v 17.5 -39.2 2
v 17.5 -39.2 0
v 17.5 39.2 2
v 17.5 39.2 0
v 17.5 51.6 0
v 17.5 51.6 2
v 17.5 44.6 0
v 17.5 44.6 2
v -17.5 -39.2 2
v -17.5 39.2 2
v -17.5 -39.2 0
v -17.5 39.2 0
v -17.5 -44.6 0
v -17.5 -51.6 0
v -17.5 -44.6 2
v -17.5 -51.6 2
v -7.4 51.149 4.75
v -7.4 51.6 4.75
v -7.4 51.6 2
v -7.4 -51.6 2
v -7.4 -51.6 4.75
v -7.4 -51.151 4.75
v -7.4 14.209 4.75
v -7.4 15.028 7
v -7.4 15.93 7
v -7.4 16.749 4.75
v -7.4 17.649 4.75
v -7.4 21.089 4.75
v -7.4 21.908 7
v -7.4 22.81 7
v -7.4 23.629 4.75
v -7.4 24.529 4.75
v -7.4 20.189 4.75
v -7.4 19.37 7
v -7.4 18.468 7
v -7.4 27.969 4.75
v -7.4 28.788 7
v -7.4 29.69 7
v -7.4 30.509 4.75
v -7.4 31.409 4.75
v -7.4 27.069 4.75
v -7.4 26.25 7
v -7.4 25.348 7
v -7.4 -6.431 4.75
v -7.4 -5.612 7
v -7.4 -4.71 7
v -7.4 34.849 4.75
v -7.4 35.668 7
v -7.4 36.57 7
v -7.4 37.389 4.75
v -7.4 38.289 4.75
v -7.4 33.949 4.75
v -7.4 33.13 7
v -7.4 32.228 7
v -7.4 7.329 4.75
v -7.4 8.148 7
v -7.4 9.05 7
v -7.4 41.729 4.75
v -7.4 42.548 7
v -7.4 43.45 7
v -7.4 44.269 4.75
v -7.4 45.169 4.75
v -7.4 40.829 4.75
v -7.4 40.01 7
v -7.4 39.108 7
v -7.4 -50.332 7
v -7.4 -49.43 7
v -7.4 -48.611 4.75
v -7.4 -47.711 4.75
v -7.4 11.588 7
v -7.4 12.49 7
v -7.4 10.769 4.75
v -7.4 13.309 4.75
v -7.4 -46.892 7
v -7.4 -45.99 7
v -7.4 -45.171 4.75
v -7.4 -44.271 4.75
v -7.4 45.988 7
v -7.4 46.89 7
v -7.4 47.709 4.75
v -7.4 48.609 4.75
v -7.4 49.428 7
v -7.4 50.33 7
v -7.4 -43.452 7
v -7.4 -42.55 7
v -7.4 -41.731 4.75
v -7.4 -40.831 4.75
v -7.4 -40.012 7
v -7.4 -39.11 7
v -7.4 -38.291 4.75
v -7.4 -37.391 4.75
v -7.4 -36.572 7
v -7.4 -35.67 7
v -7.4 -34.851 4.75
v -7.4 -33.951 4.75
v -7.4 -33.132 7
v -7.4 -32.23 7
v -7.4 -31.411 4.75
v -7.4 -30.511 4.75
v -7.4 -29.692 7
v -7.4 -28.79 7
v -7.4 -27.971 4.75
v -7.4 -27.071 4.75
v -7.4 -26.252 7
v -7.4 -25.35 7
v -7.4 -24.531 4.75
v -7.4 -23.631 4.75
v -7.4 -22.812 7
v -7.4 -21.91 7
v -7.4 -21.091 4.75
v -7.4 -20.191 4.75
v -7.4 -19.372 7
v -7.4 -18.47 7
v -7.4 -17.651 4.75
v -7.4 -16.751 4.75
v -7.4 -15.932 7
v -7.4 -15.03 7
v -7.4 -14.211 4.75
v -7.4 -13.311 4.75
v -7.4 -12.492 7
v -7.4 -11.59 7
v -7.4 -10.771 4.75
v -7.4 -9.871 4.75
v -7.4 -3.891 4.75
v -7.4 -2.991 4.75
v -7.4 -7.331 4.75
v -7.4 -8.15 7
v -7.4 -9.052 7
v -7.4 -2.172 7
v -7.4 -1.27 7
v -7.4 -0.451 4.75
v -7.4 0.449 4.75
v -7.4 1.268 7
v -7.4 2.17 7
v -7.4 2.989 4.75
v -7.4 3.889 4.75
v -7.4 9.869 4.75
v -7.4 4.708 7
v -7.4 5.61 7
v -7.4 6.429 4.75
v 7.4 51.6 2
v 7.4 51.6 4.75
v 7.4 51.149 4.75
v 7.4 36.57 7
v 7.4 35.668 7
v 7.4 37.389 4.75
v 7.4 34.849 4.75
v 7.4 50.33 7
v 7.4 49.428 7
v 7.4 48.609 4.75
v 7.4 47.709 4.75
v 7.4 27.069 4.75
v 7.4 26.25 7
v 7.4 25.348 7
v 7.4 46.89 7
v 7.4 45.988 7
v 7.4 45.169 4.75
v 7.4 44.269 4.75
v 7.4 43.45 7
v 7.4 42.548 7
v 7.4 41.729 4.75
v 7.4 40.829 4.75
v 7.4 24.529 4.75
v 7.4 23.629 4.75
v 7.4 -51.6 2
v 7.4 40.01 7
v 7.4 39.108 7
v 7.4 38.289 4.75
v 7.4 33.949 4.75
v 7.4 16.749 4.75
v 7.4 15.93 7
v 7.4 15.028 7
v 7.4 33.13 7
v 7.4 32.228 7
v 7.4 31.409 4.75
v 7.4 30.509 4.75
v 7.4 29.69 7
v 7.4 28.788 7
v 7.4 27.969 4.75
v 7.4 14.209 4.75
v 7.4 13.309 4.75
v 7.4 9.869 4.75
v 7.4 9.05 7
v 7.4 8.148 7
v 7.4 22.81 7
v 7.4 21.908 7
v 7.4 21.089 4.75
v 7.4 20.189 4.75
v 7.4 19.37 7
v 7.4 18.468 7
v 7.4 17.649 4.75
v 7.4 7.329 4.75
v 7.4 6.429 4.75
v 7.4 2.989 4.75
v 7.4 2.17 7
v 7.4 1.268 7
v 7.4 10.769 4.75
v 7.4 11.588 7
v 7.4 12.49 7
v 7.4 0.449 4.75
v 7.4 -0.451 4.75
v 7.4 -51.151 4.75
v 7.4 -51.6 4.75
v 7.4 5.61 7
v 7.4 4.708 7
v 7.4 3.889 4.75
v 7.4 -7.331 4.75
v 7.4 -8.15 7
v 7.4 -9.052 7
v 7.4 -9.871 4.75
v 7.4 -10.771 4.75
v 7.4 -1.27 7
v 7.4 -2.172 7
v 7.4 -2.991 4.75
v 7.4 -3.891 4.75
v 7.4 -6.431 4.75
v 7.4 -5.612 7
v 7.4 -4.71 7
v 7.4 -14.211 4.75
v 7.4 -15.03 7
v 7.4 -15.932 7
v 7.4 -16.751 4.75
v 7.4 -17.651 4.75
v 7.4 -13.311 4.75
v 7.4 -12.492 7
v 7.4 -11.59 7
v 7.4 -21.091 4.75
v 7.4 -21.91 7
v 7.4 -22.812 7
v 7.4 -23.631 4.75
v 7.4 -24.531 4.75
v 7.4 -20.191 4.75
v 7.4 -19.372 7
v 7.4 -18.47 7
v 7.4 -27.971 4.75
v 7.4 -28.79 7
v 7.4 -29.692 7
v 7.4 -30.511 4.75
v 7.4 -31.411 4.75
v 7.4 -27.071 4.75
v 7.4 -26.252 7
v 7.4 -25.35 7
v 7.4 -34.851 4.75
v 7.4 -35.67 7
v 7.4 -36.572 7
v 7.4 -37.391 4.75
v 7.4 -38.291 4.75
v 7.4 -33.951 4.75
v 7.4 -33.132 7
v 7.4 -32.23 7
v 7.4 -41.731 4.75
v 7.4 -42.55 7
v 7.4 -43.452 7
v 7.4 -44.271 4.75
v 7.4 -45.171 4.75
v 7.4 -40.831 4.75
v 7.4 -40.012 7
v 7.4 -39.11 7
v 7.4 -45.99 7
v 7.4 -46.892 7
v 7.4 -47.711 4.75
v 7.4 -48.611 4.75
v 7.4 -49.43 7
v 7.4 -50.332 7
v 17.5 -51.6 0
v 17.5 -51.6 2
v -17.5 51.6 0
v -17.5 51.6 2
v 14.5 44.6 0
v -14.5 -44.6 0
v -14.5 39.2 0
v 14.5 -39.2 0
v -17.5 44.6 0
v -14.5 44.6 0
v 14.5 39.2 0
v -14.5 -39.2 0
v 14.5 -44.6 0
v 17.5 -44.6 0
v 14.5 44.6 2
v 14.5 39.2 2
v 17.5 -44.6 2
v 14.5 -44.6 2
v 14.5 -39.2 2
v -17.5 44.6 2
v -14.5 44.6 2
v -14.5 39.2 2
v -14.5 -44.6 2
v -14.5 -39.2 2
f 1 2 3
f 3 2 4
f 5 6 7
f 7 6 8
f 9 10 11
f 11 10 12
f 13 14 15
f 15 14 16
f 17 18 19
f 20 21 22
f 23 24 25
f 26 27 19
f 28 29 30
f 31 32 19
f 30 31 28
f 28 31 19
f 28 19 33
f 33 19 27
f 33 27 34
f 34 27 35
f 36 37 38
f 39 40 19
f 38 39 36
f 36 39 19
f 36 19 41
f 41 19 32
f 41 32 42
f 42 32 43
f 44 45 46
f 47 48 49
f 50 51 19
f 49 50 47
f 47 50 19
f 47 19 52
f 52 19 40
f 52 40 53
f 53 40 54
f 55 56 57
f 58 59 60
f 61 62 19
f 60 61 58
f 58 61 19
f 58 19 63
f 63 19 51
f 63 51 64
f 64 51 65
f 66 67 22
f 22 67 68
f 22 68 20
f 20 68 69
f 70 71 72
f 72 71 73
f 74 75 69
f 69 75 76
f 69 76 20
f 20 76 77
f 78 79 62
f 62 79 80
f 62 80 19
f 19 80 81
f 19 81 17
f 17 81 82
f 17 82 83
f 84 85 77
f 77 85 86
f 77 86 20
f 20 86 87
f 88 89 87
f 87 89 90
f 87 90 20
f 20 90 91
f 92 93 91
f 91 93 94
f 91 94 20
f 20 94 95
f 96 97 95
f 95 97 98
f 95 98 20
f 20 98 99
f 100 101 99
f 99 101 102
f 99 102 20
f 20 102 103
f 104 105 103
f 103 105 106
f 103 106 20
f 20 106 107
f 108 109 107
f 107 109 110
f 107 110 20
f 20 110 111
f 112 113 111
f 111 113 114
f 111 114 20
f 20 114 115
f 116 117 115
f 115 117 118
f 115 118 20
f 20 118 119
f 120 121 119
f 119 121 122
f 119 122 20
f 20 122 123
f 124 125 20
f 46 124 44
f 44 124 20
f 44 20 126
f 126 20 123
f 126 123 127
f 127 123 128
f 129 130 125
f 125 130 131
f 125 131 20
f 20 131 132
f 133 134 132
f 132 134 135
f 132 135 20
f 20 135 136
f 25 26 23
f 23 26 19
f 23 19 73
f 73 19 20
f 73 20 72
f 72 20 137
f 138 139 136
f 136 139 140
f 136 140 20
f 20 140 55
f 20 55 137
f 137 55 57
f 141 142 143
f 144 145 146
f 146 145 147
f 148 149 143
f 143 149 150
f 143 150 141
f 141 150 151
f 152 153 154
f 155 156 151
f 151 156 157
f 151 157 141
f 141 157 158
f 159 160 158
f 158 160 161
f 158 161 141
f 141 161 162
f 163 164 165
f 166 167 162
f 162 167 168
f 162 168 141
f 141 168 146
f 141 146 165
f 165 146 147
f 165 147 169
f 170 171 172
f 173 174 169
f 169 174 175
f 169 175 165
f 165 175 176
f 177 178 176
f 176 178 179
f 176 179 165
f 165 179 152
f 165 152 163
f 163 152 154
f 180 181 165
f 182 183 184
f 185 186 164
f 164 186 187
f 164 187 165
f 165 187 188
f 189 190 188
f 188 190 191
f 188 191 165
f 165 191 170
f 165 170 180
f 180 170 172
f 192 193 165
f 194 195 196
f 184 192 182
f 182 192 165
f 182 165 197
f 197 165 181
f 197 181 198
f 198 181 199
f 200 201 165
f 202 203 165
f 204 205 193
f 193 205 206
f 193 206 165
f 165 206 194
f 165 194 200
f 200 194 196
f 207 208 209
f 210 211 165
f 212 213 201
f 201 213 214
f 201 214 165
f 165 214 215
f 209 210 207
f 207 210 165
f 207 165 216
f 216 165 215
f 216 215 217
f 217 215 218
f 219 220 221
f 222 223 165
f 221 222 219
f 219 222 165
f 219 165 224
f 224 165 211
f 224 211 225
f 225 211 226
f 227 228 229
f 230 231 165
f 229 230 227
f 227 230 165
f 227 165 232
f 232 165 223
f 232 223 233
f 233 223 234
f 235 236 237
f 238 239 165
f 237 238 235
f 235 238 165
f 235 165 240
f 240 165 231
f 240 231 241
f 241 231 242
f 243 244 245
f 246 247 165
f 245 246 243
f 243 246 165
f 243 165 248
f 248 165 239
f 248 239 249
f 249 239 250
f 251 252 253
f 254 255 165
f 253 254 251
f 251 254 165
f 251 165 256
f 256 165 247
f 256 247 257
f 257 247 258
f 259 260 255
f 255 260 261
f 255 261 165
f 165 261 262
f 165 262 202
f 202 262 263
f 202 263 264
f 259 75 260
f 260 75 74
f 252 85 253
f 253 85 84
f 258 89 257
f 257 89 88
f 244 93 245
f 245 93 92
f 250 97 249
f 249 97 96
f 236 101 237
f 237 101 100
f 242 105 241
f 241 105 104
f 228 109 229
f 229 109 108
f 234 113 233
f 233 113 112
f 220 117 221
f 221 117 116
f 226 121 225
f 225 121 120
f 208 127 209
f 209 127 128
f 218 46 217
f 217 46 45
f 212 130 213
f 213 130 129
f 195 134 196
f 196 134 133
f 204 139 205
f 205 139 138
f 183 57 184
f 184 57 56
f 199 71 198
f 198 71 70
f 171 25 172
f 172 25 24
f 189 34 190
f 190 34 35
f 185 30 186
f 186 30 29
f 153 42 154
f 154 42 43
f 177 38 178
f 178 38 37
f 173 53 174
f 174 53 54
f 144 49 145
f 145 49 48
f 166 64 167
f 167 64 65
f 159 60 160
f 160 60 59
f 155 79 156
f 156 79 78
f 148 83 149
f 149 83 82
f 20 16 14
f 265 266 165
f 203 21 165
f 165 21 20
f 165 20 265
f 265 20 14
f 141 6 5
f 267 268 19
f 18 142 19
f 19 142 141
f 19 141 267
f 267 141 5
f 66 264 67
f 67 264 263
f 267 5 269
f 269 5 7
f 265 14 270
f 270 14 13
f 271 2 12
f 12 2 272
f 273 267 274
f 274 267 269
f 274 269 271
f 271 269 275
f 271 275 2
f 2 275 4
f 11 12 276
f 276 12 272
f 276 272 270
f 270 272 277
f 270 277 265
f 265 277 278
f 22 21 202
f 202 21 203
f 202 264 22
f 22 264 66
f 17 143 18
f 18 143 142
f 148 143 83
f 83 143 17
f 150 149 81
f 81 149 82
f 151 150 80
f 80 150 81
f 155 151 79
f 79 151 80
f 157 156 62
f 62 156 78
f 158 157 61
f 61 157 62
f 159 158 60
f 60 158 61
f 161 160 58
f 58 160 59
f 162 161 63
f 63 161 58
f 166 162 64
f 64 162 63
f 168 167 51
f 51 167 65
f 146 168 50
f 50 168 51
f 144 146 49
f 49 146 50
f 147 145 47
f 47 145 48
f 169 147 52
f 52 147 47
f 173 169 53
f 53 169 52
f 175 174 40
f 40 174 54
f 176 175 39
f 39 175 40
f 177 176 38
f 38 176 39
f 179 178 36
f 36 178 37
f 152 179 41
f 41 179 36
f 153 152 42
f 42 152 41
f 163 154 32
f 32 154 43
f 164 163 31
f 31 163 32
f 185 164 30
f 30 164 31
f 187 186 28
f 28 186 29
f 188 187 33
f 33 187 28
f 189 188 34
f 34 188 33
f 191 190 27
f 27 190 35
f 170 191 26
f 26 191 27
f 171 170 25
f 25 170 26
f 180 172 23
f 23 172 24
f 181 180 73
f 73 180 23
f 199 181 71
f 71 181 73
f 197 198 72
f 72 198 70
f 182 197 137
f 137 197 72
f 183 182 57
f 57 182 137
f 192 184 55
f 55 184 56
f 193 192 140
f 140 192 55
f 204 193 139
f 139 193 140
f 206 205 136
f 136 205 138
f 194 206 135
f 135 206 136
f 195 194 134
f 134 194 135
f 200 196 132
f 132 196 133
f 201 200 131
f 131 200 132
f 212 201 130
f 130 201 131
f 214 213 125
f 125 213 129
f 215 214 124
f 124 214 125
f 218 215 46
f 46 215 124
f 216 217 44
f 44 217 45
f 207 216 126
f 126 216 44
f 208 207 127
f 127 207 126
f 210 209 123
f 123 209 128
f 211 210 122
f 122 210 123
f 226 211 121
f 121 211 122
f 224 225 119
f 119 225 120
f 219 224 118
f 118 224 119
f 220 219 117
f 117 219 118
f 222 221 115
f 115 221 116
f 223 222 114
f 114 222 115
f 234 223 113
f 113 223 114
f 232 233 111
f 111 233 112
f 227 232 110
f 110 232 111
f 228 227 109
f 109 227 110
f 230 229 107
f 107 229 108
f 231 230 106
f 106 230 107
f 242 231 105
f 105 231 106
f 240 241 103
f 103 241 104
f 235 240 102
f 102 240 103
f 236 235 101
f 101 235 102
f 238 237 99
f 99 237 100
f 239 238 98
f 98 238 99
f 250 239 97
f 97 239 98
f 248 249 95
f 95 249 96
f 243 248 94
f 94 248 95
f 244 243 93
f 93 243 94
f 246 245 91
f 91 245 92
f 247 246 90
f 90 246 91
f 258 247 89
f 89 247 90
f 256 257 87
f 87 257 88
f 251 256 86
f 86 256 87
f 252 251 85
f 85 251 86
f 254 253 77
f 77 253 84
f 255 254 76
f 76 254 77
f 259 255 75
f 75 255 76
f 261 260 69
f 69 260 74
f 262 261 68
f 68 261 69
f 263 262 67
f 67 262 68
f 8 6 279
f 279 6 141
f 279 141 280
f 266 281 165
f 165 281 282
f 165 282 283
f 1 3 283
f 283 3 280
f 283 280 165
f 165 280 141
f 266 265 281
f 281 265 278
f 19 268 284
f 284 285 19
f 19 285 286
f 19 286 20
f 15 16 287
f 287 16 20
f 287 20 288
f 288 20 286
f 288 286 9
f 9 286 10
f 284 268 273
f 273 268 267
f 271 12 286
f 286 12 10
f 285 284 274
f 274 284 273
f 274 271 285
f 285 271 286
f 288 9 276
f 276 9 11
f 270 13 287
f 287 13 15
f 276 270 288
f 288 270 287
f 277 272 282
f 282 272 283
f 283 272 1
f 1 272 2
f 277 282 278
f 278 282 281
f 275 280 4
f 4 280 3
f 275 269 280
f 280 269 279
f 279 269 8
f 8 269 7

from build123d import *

# Parameters (mm, degrees)
SKETCH7_W           = 14.8
SKETCH7_H           = 103.2
BOSS_EXTRUDE4_DEPTH = 7
CUT_EXTRUDE2_DEPTH  = 15
LPATTERN1_COUNT     = 31
LPATTERN1_PITCH     = 3.44
SKETCH10_W          = 103.2
SKETCH10_H          = 2
BOSS_EXTRUDE5_DEPTH = 10.1
SKETCH11_W          = 103.2
SKETCH11_H          = 2
BOSS_EXTRUDE6_DEPTH = 10.1
SKETCH12_W          = 5.4
SKETCH12_H          = 5.4
CUT_EXTRUDE3_DEPTH  = 55.715719862


with BuildPart() as part:
    # Sketch7 → Boss-Extrude4 (new body)
    with BuildSketch(Plane.XY):
        Rectangle(SKETCH7_W, SKETCH7_H)
    extrude(amount=BOSS_EXTRUDE4_DEPTH)

    # Sketch9 → Cut-Extrude2 (cut)
    with BuildSketch(Plane.YZ.offset(7.4)):
        Polygon((-52.87, 7), (-52.051066973, 4.75), (-51.151066973, 4.75), (-50.332133946, 7), align=None)
    cut_extrude2 = extrude(amount=-CUT_EXTRUDE2_DEPTH, mode=Mode.SUBTRACT)

    # LPattern1: Cut-Extrude2 ×31
    with Locations(*[(0, i * LPATTERN1_PITCH, 0) for i in range(1, LPATTERN1_COUNT)]):
        add(cut_extrude2, mode=Mode.SUBTRACT)

    # Sketch10 → Boss-Extrude5 (add)
    with BuildSketch(Plane.YZ.offset(7.4)):
        with Locations((0, 1)):
            Rectangle(SKETCH10_W, SKETCH10_H)
    extrude(amount=BOSS_EXTRUDE5_DEPTH)

    # Sketch11 → Boss-Extrude6 (add)
    with BuildSketch(Plane(origin=(-7.4, 0, 0), x_dir=(0, -1, 0), z_dir=(-1, 0, 0))):
        with Locations((0, 1)):
            Rectangle(SKETCH11_W, SKETCH11_H)
    extrude(amount=BOSS_EXTRUDE6_DEPTH)

    # Sketch12 → Cut-Extrude3 (cut, through all)
    with BuildSketch(Plane.XY.offset(2)):
        with Locations((17.2, -41.9)):
            Rectangle(SKETCH12_W, SKETCH12_H)
        with Locations((17.2, 41.9)):
            Rectangle(SKETCH12_W, SKETCH12_H)
        with Locations((-17.2, 41.9)):
            Rectangle(SKETCH12_W, SKETCH12_H)
        with Locations((-17.2, -41.9)):
            Rectangle(SKETCH12_W, SKETCH12_H)
    extrude(amount=-CUT_EXTRUDE3_DEPTH, mode=Mode.SUBTRACT)


solid = part.part
